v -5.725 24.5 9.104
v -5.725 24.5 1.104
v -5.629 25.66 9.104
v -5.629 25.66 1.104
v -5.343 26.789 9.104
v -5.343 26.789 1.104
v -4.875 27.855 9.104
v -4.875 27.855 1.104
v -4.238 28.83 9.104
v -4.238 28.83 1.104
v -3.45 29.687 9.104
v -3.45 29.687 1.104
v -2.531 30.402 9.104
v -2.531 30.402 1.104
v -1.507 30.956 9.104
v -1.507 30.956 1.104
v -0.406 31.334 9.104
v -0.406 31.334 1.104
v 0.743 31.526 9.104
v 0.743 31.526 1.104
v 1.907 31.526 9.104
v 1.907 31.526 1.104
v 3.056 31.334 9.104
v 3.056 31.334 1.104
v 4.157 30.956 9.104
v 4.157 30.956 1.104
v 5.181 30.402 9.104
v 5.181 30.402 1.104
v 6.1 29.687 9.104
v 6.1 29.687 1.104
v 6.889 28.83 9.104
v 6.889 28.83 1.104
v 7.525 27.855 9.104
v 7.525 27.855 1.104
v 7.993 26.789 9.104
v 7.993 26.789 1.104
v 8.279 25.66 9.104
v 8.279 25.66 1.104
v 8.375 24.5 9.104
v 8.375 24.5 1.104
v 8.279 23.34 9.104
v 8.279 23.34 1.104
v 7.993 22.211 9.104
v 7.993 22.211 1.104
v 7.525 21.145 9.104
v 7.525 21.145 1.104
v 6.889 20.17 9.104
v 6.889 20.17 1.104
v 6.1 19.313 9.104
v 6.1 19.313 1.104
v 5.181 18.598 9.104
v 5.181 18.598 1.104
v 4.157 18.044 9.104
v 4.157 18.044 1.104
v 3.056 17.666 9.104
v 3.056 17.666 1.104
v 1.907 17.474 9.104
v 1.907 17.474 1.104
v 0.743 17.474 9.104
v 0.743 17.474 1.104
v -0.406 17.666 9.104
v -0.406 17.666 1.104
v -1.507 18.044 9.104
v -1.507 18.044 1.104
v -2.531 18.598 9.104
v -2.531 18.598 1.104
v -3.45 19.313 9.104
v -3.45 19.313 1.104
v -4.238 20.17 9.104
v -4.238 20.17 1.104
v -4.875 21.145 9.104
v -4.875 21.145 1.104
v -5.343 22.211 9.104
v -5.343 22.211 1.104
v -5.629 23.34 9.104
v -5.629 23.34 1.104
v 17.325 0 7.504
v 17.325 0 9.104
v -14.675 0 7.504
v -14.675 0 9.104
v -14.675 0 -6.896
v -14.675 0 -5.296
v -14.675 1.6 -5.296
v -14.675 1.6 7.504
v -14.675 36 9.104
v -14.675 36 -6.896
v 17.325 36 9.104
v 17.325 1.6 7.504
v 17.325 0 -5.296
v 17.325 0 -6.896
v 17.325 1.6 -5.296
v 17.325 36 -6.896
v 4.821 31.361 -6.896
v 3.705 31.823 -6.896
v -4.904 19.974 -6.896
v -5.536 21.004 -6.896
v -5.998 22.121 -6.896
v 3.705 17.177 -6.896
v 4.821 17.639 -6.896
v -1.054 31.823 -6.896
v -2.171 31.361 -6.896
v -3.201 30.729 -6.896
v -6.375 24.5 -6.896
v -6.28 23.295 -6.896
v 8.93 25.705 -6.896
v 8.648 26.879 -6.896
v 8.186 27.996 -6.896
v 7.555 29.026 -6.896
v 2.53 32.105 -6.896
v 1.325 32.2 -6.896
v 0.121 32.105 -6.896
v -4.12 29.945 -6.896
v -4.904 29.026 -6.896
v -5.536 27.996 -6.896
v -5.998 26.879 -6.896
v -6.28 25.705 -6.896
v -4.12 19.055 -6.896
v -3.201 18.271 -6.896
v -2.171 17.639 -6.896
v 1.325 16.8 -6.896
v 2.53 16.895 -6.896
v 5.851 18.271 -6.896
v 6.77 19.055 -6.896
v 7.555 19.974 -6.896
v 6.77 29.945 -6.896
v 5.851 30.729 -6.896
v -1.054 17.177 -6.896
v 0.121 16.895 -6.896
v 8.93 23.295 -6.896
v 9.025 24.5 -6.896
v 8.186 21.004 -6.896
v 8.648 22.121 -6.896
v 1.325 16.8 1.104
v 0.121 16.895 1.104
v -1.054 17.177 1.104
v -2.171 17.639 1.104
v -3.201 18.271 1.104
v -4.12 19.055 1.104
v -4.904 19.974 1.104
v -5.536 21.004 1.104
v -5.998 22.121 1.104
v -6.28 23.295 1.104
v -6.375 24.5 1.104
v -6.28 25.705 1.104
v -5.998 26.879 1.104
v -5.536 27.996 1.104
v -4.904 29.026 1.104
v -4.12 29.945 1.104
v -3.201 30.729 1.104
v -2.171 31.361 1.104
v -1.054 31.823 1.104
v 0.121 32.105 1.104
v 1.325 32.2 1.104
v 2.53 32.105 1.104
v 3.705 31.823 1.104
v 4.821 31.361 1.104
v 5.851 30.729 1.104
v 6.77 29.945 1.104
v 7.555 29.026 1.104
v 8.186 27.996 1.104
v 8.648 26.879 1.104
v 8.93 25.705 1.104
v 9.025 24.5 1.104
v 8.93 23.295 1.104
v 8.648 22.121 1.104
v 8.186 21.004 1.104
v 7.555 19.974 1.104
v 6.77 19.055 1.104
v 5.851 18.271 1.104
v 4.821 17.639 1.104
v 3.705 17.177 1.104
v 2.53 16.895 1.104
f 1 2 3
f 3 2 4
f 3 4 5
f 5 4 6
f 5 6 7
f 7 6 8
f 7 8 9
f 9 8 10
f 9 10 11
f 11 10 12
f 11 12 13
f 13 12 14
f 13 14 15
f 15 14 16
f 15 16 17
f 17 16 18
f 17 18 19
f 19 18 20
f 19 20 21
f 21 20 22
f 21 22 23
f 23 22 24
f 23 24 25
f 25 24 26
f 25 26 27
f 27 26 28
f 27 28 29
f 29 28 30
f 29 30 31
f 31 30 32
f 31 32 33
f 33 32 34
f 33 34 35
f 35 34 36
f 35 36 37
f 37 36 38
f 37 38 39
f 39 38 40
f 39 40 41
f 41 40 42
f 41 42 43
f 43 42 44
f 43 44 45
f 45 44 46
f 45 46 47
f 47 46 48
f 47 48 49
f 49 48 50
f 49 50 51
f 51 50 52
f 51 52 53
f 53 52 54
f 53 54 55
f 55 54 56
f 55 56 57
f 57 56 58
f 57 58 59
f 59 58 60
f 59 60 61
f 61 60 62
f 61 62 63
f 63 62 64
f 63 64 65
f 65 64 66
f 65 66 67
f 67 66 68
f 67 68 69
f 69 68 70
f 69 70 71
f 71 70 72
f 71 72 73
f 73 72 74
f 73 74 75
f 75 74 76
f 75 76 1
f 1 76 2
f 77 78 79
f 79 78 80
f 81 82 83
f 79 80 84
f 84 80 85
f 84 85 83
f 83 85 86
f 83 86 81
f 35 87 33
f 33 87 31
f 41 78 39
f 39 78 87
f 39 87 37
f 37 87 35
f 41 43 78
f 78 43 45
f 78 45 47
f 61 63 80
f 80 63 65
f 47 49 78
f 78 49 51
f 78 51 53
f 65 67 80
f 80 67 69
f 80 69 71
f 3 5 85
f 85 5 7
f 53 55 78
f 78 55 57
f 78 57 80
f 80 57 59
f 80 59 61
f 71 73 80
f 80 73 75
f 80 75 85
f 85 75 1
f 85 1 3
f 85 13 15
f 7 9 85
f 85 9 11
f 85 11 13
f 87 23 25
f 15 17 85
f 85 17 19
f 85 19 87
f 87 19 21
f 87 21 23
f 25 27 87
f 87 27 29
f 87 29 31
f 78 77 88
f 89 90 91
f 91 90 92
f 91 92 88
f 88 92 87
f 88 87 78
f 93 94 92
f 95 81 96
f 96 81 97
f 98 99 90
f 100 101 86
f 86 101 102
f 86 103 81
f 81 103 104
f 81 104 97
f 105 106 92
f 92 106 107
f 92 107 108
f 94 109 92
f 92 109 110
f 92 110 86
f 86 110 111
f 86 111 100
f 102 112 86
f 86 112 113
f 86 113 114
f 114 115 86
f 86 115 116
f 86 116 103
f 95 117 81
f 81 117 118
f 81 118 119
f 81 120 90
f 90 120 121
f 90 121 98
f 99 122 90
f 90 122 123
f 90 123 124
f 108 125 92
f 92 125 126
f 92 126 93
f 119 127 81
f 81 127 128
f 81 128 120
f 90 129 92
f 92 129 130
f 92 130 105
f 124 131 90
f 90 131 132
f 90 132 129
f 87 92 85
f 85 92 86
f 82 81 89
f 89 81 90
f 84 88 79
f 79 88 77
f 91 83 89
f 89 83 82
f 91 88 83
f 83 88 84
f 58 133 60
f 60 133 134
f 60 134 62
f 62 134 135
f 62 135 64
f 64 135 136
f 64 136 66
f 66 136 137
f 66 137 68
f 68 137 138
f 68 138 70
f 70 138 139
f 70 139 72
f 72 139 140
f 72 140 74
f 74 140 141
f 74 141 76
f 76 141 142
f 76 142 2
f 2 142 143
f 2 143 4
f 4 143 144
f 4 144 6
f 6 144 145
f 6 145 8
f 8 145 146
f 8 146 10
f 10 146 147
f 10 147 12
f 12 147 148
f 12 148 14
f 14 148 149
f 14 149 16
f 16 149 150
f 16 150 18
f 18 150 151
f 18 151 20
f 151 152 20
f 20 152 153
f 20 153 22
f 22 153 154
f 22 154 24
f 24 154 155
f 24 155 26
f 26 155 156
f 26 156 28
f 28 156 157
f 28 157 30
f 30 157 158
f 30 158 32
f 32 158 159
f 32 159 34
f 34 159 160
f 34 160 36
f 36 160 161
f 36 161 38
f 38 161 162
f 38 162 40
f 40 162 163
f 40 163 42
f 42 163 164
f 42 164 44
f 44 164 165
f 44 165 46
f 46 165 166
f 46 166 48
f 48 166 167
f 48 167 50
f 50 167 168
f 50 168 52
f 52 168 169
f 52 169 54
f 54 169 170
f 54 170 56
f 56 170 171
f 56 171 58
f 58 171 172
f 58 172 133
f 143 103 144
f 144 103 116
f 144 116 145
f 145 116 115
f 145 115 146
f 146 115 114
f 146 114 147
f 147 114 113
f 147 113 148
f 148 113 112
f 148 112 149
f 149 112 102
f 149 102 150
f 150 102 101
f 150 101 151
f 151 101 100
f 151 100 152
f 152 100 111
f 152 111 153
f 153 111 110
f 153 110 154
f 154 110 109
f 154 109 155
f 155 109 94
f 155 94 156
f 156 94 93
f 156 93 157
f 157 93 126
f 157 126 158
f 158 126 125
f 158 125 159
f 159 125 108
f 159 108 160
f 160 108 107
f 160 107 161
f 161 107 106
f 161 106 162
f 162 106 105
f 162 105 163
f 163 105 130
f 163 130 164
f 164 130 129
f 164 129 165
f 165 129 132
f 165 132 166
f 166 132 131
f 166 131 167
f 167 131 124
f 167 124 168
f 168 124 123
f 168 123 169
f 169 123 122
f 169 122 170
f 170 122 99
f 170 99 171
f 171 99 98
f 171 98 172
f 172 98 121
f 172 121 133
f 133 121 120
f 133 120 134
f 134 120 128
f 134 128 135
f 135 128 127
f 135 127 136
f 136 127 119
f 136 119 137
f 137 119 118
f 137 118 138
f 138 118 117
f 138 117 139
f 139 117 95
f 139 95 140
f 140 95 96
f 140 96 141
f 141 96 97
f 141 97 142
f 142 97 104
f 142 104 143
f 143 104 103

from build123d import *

# Parameters (mm, degrees)
SKETCH1_W           = 32
SKETCH1_H           = 16
BOSS_EXTRUDE1_DEPTH = 36
SKETCH2_W           = 32
SKETCH2_H           = 12.8
CUT_EXTRUDE1_DEPTH  = 1.6
SKETCH3_R           = 7.05
CUT_EXTRUDE2_DEPTH  = 44.036739415
SKETCH4_R           = 7.7
CUT_EXTRUDE3_DEPTH  = 8


with BuildPart() as part:
    # Sketch1 → Boss-Extrude1 (new body)
    with BuildSketch(Plane(origin=(0, 0, 0), x_dir=(1, 0, 0), z_dir=(0, 1, 0))):
        with Locations((1.325153374, -1.104294479)):
            Rectangle(SKETCH1_W, SKETCH1_H)
    extrude(amount=BOSS_EXTRUDE1_DEPTH)

    # Sketch2 → Cut-Extrude1 (cut)
    with BuildSketch(Plane(origin=(0, 0, 0), x_dir=(-1, 0, 0), z_dir=(0, -1, 0))):
        with Locations((-1.325153374, -1.104294479)):
            Rectangle(SKETCH2_W, SKETCH2_H)
    extrude(amount=-CUT_EXTRUDE1_DEPTH, mode=Mode.SUBTRACT)

    # Sketch3 → Cut-Extrude2 (cut, through all)
    with BuildSketch(Plane(origin=(0, 0, -6.895705521), x_dir=(-1, 0, 0), z_dir=(0, 0, -1))):
        with Locations((-1.325153374, 24.5)):
            Circle(SKETCH3_R)
    extrude(amount=-CUT_EXTRUDE2_DEPTH, mode=Mode.SUBTRACT)

    # Sketch4 → Cut-Extrude3 (cut)
    with BuildSketch(Plane(origin=(0, 0, -6.895705521), x_dir=(-1, 0, 0), z_dir=(0, 0, -1))):
        with Locations((-1.325153374, 24.5)):
            Circle(SKETCH4_R)
    extrude(amount=-CUT_EXTRUDE3_DEPTH, mode=Mode.SUBTRACT)


solid = part.part
